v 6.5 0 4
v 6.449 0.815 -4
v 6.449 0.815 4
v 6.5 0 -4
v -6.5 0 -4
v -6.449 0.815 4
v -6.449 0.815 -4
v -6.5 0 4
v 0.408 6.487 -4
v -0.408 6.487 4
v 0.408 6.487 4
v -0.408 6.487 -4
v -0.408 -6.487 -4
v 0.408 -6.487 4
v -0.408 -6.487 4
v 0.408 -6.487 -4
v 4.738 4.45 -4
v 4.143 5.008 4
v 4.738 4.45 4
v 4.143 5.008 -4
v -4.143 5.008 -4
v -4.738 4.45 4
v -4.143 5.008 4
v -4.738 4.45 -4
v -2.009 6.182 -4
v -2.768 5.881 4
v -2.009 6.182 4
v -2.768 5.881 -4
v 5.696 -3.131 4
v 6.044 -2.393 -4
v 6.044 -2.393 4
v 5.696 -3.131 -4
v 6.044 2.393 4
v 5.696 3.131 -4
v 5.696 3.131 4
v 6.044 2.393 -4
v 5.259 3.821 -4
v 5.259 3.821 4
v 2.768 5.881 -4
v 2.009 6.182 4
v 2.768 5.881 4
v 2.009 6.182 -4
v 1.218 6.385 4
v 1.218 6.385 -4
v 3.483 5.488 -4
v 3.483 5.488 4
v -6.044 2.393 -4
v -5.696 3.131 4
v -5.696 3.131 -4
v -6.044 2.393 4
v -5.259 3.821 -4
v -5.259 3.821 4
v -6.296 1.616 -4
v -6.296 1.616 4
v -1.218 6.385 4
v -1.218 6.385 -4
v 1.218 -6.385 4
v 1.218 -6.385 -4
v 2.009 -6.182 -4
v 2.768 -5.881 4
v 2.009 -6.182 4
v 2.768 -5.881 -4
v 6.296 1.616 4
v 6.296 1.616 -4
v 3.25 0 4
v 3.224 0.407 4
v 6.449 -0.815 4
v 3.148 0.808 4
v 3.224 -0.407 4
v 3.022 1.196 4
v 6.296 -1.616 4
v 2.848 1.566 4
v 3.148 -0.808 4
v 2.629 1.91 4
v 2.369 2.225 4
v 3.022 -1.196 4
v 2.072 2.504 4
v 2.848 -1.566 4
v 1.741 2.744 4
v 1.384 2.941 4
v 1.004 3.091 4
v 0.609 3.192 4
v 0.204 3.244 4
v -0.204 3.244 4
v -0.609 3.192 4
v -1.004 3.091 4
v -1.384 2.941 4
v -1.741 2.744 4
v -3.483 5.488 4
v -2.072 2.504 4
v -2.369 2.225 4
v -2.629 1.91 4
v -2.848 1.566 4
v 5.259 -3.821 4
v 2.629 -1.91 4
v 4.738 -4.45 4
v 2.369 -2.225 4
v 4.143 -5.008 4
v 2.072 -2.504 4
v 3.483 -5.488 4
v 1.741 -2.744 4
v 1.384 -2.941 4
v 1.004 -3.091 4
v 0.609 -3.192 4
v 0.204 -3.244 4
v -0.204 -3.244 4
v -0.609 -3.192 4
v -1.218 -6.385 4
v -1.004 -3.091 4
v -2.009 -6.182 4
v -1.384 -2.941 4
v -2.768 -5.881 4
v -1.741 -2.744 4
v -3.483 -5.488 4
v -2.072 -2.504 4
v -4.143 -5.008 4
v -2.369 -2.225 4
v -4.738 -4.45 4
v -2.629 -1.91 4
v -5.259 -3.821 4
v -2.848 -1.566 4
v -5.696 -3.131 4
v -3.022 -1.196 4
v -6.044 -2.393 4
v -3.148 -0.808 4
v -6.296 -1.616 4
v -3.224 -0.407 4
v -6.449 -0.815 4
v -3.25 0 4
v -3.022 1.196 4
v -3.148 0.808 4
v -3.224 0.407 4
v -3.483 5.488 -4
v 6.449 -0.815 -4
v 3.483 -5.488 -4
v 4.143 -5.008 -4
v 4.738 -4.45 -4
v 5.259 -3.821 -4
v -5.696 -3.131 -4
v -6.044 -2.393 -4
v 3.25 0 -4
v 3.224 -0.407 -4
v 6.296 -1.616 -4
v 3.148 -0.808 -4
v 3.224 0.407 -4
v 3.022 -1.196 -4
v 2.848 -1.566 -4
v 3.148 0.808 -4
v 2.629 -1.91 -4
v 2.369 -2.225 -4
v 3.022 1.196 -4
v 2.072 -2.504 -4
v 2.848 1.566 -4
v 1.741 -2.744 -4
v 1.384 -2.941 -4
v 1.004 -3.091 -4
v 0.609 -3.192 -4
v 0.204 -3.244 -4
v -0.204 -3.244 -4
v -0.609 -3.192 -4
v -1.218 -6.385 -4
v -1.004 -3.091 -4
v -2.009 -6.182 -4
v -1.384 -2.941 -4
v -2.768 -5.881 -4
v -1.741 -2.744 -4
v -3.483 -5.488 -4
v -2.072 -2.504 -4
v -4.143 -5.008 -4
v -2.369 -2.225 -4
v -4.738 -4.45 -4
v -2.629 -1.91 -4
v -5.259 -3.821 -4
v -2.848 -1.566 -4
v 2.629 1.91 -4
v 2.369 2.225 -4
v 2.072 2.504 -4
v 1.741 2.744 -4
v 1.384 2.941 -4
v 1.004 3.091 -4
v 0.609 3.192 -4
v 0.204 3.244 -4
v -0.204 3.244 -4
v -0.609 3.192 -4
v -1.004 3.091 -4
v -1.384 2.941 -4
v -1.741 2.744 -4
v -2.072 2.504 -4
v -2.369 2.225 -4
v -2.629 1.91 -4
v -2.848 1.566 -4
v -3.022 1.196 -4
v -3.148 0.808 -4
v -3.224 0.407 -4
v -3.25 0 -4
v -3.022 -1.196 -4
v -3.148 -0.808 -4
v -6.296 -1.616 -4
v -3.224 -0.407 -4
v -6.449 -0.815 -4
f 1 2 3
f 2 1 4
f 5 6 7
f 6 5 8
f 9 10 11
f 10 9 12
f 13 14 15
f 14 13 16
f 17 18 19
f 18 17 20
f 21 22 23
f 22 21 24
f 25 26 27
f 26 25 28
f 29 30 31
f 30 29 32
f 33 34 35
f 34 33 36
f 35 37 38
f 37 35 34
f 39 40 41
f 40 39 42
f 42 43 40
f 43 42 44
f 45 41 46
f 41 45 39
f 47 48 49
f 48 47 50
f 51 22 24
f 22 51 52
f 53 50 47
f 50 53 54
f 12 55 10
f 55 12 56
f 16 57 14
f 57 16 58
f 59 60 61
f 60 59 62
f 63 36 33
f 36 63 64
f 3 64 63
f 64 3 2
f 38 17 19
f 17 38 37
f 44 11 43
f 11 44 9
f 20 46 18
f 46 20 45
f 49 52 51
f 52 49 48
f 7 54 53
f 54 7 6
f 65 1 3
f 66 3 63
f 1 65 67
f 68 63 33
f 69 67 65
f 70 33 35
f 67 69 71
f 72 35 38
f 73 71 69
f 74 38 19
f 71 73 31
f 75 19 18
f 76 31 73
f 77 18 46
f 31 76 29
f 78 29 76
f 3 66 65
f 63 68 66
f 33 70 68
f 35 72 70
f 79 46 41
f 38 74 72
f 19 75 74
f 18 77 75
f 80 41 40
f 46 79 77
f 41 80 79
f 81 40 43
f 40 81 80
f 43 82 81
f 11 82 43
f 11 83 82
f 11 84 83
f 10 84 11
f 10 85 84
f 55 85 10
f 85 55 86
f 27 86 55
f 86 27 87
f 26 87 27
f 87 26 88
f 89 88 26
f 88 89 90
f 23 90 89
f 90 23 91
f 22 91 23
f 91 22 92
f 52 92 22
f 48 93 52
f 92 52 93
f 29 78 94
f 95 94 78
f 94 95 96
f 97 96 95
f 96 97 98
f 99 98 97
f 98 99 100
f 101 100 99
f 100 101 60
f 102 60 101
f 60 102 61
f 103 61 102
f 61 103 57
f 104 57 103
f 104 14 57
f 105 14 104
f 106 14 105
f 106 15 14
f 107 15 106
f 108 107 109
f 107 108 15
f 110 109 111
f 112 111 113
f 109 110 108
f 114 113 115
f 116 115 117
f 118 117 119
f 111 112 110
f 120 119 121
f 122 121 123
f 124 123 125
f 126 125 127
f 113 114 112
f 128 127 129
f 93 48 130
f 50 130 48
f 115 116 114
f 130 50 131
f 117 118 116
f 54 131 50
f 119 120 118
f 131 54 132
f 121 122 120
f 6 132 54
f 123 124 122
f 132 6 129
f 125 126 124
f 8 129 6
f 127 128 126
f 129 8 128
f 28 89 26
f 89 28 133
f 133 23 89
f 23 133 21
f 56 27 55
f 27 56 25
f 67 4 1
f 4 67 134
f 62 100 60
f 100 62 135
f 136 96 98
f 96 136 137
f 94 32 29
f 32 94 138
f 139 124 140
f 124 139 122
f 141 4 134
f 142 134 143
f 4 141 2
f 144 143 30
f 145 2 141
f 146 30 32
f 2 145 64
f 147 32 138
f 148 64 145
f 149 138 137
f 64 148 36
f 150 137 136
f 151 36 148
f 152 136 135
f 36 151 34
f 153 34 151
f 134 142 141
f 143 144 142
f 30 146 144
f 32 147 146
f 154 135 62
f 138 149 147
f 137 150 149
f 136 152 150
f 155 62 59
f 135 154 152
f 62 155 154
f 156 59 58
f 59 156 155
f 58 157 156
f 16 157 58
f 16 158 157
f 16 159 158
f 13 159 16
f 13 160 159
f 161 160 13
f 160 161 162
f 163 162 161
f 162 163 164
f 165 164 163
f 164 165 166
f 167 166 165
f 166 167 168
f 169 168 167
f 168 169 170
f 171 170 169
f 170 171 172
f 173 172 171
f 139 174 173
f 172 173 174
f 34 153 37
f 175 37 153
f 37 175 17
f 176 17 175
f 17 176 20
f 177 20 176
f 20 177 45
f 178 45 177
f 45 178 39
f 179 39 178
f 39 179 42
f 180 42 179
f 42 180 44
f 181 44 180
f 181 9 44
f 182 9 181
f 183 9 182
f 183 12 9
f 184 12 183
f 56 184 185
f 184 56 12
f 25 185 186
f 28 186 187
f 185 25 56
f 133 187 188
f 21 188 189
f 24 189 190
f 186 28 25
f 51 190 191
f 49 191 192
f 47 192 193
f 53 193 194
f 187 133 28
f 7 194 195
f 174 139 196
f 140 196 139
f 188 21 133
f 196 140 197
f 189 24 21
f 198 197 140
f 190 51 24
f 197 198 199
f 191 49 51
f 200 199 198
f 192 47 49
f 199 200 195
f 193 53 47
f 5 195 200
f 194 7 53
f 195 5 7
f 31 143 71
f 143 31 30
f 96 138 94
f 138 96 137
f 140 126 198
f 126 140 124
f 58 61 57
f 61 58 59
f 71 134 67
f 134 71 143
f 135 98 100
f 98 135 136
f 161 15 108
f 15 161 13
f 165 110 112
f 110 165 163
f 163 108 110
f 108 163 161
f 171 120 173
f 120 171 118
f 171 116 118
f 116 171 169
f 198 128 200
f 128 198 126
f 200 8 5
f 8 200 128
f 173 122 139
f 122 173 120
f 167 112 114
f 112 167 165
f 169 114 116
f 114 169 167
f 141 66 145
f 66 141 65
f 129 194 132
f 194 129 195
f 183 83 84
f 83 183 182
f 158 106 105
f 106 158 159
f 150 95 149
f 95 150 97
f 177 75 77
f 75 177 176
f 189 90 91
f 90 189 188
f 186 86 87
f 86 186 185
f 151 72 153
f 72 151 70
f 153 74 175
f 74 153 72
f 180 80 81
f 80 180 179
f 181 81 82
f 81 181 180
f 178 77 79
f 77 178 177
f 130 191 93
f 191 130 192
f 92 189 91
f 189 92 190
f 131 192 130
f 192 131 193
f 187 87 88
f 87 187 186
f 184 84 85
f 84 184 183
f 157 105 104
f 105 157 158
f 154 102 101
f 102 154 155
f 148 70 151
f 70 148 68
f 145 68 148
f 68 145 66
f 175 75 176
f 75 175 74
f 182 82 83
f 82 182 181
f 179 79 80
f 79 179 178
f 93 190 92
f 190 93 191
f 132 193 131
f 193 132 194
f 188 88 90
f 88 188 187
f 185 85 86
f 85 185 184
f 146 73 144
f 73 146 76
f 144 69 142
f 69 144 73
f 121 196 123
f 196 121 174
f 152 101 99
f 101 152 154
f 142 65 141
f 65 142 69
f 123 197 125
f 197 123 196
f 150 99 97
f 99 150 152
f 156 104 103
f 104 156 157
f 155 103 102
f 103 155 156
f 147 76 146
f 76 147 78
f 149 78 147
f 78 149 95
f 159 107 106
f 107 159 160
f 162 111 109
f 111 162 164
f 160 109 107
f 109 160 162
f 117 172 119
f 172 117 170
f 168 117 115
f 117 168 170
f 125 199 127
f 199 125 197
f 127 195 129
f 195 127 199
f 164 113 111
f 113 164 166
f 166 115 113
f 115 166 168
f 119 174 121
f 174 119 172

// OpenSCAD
$fn = 50;


difference() {
	union() {
		translate(v = [0, 0, -4.0000000000]) {
			cylinder(h = 8, r = 6.5000000000);
		}
	}
	union() {
		translate(v = [0, 0, -100.0000000000]) {
			cylinder(h = 200, r = 3.2500000000);
		}
	}
}
